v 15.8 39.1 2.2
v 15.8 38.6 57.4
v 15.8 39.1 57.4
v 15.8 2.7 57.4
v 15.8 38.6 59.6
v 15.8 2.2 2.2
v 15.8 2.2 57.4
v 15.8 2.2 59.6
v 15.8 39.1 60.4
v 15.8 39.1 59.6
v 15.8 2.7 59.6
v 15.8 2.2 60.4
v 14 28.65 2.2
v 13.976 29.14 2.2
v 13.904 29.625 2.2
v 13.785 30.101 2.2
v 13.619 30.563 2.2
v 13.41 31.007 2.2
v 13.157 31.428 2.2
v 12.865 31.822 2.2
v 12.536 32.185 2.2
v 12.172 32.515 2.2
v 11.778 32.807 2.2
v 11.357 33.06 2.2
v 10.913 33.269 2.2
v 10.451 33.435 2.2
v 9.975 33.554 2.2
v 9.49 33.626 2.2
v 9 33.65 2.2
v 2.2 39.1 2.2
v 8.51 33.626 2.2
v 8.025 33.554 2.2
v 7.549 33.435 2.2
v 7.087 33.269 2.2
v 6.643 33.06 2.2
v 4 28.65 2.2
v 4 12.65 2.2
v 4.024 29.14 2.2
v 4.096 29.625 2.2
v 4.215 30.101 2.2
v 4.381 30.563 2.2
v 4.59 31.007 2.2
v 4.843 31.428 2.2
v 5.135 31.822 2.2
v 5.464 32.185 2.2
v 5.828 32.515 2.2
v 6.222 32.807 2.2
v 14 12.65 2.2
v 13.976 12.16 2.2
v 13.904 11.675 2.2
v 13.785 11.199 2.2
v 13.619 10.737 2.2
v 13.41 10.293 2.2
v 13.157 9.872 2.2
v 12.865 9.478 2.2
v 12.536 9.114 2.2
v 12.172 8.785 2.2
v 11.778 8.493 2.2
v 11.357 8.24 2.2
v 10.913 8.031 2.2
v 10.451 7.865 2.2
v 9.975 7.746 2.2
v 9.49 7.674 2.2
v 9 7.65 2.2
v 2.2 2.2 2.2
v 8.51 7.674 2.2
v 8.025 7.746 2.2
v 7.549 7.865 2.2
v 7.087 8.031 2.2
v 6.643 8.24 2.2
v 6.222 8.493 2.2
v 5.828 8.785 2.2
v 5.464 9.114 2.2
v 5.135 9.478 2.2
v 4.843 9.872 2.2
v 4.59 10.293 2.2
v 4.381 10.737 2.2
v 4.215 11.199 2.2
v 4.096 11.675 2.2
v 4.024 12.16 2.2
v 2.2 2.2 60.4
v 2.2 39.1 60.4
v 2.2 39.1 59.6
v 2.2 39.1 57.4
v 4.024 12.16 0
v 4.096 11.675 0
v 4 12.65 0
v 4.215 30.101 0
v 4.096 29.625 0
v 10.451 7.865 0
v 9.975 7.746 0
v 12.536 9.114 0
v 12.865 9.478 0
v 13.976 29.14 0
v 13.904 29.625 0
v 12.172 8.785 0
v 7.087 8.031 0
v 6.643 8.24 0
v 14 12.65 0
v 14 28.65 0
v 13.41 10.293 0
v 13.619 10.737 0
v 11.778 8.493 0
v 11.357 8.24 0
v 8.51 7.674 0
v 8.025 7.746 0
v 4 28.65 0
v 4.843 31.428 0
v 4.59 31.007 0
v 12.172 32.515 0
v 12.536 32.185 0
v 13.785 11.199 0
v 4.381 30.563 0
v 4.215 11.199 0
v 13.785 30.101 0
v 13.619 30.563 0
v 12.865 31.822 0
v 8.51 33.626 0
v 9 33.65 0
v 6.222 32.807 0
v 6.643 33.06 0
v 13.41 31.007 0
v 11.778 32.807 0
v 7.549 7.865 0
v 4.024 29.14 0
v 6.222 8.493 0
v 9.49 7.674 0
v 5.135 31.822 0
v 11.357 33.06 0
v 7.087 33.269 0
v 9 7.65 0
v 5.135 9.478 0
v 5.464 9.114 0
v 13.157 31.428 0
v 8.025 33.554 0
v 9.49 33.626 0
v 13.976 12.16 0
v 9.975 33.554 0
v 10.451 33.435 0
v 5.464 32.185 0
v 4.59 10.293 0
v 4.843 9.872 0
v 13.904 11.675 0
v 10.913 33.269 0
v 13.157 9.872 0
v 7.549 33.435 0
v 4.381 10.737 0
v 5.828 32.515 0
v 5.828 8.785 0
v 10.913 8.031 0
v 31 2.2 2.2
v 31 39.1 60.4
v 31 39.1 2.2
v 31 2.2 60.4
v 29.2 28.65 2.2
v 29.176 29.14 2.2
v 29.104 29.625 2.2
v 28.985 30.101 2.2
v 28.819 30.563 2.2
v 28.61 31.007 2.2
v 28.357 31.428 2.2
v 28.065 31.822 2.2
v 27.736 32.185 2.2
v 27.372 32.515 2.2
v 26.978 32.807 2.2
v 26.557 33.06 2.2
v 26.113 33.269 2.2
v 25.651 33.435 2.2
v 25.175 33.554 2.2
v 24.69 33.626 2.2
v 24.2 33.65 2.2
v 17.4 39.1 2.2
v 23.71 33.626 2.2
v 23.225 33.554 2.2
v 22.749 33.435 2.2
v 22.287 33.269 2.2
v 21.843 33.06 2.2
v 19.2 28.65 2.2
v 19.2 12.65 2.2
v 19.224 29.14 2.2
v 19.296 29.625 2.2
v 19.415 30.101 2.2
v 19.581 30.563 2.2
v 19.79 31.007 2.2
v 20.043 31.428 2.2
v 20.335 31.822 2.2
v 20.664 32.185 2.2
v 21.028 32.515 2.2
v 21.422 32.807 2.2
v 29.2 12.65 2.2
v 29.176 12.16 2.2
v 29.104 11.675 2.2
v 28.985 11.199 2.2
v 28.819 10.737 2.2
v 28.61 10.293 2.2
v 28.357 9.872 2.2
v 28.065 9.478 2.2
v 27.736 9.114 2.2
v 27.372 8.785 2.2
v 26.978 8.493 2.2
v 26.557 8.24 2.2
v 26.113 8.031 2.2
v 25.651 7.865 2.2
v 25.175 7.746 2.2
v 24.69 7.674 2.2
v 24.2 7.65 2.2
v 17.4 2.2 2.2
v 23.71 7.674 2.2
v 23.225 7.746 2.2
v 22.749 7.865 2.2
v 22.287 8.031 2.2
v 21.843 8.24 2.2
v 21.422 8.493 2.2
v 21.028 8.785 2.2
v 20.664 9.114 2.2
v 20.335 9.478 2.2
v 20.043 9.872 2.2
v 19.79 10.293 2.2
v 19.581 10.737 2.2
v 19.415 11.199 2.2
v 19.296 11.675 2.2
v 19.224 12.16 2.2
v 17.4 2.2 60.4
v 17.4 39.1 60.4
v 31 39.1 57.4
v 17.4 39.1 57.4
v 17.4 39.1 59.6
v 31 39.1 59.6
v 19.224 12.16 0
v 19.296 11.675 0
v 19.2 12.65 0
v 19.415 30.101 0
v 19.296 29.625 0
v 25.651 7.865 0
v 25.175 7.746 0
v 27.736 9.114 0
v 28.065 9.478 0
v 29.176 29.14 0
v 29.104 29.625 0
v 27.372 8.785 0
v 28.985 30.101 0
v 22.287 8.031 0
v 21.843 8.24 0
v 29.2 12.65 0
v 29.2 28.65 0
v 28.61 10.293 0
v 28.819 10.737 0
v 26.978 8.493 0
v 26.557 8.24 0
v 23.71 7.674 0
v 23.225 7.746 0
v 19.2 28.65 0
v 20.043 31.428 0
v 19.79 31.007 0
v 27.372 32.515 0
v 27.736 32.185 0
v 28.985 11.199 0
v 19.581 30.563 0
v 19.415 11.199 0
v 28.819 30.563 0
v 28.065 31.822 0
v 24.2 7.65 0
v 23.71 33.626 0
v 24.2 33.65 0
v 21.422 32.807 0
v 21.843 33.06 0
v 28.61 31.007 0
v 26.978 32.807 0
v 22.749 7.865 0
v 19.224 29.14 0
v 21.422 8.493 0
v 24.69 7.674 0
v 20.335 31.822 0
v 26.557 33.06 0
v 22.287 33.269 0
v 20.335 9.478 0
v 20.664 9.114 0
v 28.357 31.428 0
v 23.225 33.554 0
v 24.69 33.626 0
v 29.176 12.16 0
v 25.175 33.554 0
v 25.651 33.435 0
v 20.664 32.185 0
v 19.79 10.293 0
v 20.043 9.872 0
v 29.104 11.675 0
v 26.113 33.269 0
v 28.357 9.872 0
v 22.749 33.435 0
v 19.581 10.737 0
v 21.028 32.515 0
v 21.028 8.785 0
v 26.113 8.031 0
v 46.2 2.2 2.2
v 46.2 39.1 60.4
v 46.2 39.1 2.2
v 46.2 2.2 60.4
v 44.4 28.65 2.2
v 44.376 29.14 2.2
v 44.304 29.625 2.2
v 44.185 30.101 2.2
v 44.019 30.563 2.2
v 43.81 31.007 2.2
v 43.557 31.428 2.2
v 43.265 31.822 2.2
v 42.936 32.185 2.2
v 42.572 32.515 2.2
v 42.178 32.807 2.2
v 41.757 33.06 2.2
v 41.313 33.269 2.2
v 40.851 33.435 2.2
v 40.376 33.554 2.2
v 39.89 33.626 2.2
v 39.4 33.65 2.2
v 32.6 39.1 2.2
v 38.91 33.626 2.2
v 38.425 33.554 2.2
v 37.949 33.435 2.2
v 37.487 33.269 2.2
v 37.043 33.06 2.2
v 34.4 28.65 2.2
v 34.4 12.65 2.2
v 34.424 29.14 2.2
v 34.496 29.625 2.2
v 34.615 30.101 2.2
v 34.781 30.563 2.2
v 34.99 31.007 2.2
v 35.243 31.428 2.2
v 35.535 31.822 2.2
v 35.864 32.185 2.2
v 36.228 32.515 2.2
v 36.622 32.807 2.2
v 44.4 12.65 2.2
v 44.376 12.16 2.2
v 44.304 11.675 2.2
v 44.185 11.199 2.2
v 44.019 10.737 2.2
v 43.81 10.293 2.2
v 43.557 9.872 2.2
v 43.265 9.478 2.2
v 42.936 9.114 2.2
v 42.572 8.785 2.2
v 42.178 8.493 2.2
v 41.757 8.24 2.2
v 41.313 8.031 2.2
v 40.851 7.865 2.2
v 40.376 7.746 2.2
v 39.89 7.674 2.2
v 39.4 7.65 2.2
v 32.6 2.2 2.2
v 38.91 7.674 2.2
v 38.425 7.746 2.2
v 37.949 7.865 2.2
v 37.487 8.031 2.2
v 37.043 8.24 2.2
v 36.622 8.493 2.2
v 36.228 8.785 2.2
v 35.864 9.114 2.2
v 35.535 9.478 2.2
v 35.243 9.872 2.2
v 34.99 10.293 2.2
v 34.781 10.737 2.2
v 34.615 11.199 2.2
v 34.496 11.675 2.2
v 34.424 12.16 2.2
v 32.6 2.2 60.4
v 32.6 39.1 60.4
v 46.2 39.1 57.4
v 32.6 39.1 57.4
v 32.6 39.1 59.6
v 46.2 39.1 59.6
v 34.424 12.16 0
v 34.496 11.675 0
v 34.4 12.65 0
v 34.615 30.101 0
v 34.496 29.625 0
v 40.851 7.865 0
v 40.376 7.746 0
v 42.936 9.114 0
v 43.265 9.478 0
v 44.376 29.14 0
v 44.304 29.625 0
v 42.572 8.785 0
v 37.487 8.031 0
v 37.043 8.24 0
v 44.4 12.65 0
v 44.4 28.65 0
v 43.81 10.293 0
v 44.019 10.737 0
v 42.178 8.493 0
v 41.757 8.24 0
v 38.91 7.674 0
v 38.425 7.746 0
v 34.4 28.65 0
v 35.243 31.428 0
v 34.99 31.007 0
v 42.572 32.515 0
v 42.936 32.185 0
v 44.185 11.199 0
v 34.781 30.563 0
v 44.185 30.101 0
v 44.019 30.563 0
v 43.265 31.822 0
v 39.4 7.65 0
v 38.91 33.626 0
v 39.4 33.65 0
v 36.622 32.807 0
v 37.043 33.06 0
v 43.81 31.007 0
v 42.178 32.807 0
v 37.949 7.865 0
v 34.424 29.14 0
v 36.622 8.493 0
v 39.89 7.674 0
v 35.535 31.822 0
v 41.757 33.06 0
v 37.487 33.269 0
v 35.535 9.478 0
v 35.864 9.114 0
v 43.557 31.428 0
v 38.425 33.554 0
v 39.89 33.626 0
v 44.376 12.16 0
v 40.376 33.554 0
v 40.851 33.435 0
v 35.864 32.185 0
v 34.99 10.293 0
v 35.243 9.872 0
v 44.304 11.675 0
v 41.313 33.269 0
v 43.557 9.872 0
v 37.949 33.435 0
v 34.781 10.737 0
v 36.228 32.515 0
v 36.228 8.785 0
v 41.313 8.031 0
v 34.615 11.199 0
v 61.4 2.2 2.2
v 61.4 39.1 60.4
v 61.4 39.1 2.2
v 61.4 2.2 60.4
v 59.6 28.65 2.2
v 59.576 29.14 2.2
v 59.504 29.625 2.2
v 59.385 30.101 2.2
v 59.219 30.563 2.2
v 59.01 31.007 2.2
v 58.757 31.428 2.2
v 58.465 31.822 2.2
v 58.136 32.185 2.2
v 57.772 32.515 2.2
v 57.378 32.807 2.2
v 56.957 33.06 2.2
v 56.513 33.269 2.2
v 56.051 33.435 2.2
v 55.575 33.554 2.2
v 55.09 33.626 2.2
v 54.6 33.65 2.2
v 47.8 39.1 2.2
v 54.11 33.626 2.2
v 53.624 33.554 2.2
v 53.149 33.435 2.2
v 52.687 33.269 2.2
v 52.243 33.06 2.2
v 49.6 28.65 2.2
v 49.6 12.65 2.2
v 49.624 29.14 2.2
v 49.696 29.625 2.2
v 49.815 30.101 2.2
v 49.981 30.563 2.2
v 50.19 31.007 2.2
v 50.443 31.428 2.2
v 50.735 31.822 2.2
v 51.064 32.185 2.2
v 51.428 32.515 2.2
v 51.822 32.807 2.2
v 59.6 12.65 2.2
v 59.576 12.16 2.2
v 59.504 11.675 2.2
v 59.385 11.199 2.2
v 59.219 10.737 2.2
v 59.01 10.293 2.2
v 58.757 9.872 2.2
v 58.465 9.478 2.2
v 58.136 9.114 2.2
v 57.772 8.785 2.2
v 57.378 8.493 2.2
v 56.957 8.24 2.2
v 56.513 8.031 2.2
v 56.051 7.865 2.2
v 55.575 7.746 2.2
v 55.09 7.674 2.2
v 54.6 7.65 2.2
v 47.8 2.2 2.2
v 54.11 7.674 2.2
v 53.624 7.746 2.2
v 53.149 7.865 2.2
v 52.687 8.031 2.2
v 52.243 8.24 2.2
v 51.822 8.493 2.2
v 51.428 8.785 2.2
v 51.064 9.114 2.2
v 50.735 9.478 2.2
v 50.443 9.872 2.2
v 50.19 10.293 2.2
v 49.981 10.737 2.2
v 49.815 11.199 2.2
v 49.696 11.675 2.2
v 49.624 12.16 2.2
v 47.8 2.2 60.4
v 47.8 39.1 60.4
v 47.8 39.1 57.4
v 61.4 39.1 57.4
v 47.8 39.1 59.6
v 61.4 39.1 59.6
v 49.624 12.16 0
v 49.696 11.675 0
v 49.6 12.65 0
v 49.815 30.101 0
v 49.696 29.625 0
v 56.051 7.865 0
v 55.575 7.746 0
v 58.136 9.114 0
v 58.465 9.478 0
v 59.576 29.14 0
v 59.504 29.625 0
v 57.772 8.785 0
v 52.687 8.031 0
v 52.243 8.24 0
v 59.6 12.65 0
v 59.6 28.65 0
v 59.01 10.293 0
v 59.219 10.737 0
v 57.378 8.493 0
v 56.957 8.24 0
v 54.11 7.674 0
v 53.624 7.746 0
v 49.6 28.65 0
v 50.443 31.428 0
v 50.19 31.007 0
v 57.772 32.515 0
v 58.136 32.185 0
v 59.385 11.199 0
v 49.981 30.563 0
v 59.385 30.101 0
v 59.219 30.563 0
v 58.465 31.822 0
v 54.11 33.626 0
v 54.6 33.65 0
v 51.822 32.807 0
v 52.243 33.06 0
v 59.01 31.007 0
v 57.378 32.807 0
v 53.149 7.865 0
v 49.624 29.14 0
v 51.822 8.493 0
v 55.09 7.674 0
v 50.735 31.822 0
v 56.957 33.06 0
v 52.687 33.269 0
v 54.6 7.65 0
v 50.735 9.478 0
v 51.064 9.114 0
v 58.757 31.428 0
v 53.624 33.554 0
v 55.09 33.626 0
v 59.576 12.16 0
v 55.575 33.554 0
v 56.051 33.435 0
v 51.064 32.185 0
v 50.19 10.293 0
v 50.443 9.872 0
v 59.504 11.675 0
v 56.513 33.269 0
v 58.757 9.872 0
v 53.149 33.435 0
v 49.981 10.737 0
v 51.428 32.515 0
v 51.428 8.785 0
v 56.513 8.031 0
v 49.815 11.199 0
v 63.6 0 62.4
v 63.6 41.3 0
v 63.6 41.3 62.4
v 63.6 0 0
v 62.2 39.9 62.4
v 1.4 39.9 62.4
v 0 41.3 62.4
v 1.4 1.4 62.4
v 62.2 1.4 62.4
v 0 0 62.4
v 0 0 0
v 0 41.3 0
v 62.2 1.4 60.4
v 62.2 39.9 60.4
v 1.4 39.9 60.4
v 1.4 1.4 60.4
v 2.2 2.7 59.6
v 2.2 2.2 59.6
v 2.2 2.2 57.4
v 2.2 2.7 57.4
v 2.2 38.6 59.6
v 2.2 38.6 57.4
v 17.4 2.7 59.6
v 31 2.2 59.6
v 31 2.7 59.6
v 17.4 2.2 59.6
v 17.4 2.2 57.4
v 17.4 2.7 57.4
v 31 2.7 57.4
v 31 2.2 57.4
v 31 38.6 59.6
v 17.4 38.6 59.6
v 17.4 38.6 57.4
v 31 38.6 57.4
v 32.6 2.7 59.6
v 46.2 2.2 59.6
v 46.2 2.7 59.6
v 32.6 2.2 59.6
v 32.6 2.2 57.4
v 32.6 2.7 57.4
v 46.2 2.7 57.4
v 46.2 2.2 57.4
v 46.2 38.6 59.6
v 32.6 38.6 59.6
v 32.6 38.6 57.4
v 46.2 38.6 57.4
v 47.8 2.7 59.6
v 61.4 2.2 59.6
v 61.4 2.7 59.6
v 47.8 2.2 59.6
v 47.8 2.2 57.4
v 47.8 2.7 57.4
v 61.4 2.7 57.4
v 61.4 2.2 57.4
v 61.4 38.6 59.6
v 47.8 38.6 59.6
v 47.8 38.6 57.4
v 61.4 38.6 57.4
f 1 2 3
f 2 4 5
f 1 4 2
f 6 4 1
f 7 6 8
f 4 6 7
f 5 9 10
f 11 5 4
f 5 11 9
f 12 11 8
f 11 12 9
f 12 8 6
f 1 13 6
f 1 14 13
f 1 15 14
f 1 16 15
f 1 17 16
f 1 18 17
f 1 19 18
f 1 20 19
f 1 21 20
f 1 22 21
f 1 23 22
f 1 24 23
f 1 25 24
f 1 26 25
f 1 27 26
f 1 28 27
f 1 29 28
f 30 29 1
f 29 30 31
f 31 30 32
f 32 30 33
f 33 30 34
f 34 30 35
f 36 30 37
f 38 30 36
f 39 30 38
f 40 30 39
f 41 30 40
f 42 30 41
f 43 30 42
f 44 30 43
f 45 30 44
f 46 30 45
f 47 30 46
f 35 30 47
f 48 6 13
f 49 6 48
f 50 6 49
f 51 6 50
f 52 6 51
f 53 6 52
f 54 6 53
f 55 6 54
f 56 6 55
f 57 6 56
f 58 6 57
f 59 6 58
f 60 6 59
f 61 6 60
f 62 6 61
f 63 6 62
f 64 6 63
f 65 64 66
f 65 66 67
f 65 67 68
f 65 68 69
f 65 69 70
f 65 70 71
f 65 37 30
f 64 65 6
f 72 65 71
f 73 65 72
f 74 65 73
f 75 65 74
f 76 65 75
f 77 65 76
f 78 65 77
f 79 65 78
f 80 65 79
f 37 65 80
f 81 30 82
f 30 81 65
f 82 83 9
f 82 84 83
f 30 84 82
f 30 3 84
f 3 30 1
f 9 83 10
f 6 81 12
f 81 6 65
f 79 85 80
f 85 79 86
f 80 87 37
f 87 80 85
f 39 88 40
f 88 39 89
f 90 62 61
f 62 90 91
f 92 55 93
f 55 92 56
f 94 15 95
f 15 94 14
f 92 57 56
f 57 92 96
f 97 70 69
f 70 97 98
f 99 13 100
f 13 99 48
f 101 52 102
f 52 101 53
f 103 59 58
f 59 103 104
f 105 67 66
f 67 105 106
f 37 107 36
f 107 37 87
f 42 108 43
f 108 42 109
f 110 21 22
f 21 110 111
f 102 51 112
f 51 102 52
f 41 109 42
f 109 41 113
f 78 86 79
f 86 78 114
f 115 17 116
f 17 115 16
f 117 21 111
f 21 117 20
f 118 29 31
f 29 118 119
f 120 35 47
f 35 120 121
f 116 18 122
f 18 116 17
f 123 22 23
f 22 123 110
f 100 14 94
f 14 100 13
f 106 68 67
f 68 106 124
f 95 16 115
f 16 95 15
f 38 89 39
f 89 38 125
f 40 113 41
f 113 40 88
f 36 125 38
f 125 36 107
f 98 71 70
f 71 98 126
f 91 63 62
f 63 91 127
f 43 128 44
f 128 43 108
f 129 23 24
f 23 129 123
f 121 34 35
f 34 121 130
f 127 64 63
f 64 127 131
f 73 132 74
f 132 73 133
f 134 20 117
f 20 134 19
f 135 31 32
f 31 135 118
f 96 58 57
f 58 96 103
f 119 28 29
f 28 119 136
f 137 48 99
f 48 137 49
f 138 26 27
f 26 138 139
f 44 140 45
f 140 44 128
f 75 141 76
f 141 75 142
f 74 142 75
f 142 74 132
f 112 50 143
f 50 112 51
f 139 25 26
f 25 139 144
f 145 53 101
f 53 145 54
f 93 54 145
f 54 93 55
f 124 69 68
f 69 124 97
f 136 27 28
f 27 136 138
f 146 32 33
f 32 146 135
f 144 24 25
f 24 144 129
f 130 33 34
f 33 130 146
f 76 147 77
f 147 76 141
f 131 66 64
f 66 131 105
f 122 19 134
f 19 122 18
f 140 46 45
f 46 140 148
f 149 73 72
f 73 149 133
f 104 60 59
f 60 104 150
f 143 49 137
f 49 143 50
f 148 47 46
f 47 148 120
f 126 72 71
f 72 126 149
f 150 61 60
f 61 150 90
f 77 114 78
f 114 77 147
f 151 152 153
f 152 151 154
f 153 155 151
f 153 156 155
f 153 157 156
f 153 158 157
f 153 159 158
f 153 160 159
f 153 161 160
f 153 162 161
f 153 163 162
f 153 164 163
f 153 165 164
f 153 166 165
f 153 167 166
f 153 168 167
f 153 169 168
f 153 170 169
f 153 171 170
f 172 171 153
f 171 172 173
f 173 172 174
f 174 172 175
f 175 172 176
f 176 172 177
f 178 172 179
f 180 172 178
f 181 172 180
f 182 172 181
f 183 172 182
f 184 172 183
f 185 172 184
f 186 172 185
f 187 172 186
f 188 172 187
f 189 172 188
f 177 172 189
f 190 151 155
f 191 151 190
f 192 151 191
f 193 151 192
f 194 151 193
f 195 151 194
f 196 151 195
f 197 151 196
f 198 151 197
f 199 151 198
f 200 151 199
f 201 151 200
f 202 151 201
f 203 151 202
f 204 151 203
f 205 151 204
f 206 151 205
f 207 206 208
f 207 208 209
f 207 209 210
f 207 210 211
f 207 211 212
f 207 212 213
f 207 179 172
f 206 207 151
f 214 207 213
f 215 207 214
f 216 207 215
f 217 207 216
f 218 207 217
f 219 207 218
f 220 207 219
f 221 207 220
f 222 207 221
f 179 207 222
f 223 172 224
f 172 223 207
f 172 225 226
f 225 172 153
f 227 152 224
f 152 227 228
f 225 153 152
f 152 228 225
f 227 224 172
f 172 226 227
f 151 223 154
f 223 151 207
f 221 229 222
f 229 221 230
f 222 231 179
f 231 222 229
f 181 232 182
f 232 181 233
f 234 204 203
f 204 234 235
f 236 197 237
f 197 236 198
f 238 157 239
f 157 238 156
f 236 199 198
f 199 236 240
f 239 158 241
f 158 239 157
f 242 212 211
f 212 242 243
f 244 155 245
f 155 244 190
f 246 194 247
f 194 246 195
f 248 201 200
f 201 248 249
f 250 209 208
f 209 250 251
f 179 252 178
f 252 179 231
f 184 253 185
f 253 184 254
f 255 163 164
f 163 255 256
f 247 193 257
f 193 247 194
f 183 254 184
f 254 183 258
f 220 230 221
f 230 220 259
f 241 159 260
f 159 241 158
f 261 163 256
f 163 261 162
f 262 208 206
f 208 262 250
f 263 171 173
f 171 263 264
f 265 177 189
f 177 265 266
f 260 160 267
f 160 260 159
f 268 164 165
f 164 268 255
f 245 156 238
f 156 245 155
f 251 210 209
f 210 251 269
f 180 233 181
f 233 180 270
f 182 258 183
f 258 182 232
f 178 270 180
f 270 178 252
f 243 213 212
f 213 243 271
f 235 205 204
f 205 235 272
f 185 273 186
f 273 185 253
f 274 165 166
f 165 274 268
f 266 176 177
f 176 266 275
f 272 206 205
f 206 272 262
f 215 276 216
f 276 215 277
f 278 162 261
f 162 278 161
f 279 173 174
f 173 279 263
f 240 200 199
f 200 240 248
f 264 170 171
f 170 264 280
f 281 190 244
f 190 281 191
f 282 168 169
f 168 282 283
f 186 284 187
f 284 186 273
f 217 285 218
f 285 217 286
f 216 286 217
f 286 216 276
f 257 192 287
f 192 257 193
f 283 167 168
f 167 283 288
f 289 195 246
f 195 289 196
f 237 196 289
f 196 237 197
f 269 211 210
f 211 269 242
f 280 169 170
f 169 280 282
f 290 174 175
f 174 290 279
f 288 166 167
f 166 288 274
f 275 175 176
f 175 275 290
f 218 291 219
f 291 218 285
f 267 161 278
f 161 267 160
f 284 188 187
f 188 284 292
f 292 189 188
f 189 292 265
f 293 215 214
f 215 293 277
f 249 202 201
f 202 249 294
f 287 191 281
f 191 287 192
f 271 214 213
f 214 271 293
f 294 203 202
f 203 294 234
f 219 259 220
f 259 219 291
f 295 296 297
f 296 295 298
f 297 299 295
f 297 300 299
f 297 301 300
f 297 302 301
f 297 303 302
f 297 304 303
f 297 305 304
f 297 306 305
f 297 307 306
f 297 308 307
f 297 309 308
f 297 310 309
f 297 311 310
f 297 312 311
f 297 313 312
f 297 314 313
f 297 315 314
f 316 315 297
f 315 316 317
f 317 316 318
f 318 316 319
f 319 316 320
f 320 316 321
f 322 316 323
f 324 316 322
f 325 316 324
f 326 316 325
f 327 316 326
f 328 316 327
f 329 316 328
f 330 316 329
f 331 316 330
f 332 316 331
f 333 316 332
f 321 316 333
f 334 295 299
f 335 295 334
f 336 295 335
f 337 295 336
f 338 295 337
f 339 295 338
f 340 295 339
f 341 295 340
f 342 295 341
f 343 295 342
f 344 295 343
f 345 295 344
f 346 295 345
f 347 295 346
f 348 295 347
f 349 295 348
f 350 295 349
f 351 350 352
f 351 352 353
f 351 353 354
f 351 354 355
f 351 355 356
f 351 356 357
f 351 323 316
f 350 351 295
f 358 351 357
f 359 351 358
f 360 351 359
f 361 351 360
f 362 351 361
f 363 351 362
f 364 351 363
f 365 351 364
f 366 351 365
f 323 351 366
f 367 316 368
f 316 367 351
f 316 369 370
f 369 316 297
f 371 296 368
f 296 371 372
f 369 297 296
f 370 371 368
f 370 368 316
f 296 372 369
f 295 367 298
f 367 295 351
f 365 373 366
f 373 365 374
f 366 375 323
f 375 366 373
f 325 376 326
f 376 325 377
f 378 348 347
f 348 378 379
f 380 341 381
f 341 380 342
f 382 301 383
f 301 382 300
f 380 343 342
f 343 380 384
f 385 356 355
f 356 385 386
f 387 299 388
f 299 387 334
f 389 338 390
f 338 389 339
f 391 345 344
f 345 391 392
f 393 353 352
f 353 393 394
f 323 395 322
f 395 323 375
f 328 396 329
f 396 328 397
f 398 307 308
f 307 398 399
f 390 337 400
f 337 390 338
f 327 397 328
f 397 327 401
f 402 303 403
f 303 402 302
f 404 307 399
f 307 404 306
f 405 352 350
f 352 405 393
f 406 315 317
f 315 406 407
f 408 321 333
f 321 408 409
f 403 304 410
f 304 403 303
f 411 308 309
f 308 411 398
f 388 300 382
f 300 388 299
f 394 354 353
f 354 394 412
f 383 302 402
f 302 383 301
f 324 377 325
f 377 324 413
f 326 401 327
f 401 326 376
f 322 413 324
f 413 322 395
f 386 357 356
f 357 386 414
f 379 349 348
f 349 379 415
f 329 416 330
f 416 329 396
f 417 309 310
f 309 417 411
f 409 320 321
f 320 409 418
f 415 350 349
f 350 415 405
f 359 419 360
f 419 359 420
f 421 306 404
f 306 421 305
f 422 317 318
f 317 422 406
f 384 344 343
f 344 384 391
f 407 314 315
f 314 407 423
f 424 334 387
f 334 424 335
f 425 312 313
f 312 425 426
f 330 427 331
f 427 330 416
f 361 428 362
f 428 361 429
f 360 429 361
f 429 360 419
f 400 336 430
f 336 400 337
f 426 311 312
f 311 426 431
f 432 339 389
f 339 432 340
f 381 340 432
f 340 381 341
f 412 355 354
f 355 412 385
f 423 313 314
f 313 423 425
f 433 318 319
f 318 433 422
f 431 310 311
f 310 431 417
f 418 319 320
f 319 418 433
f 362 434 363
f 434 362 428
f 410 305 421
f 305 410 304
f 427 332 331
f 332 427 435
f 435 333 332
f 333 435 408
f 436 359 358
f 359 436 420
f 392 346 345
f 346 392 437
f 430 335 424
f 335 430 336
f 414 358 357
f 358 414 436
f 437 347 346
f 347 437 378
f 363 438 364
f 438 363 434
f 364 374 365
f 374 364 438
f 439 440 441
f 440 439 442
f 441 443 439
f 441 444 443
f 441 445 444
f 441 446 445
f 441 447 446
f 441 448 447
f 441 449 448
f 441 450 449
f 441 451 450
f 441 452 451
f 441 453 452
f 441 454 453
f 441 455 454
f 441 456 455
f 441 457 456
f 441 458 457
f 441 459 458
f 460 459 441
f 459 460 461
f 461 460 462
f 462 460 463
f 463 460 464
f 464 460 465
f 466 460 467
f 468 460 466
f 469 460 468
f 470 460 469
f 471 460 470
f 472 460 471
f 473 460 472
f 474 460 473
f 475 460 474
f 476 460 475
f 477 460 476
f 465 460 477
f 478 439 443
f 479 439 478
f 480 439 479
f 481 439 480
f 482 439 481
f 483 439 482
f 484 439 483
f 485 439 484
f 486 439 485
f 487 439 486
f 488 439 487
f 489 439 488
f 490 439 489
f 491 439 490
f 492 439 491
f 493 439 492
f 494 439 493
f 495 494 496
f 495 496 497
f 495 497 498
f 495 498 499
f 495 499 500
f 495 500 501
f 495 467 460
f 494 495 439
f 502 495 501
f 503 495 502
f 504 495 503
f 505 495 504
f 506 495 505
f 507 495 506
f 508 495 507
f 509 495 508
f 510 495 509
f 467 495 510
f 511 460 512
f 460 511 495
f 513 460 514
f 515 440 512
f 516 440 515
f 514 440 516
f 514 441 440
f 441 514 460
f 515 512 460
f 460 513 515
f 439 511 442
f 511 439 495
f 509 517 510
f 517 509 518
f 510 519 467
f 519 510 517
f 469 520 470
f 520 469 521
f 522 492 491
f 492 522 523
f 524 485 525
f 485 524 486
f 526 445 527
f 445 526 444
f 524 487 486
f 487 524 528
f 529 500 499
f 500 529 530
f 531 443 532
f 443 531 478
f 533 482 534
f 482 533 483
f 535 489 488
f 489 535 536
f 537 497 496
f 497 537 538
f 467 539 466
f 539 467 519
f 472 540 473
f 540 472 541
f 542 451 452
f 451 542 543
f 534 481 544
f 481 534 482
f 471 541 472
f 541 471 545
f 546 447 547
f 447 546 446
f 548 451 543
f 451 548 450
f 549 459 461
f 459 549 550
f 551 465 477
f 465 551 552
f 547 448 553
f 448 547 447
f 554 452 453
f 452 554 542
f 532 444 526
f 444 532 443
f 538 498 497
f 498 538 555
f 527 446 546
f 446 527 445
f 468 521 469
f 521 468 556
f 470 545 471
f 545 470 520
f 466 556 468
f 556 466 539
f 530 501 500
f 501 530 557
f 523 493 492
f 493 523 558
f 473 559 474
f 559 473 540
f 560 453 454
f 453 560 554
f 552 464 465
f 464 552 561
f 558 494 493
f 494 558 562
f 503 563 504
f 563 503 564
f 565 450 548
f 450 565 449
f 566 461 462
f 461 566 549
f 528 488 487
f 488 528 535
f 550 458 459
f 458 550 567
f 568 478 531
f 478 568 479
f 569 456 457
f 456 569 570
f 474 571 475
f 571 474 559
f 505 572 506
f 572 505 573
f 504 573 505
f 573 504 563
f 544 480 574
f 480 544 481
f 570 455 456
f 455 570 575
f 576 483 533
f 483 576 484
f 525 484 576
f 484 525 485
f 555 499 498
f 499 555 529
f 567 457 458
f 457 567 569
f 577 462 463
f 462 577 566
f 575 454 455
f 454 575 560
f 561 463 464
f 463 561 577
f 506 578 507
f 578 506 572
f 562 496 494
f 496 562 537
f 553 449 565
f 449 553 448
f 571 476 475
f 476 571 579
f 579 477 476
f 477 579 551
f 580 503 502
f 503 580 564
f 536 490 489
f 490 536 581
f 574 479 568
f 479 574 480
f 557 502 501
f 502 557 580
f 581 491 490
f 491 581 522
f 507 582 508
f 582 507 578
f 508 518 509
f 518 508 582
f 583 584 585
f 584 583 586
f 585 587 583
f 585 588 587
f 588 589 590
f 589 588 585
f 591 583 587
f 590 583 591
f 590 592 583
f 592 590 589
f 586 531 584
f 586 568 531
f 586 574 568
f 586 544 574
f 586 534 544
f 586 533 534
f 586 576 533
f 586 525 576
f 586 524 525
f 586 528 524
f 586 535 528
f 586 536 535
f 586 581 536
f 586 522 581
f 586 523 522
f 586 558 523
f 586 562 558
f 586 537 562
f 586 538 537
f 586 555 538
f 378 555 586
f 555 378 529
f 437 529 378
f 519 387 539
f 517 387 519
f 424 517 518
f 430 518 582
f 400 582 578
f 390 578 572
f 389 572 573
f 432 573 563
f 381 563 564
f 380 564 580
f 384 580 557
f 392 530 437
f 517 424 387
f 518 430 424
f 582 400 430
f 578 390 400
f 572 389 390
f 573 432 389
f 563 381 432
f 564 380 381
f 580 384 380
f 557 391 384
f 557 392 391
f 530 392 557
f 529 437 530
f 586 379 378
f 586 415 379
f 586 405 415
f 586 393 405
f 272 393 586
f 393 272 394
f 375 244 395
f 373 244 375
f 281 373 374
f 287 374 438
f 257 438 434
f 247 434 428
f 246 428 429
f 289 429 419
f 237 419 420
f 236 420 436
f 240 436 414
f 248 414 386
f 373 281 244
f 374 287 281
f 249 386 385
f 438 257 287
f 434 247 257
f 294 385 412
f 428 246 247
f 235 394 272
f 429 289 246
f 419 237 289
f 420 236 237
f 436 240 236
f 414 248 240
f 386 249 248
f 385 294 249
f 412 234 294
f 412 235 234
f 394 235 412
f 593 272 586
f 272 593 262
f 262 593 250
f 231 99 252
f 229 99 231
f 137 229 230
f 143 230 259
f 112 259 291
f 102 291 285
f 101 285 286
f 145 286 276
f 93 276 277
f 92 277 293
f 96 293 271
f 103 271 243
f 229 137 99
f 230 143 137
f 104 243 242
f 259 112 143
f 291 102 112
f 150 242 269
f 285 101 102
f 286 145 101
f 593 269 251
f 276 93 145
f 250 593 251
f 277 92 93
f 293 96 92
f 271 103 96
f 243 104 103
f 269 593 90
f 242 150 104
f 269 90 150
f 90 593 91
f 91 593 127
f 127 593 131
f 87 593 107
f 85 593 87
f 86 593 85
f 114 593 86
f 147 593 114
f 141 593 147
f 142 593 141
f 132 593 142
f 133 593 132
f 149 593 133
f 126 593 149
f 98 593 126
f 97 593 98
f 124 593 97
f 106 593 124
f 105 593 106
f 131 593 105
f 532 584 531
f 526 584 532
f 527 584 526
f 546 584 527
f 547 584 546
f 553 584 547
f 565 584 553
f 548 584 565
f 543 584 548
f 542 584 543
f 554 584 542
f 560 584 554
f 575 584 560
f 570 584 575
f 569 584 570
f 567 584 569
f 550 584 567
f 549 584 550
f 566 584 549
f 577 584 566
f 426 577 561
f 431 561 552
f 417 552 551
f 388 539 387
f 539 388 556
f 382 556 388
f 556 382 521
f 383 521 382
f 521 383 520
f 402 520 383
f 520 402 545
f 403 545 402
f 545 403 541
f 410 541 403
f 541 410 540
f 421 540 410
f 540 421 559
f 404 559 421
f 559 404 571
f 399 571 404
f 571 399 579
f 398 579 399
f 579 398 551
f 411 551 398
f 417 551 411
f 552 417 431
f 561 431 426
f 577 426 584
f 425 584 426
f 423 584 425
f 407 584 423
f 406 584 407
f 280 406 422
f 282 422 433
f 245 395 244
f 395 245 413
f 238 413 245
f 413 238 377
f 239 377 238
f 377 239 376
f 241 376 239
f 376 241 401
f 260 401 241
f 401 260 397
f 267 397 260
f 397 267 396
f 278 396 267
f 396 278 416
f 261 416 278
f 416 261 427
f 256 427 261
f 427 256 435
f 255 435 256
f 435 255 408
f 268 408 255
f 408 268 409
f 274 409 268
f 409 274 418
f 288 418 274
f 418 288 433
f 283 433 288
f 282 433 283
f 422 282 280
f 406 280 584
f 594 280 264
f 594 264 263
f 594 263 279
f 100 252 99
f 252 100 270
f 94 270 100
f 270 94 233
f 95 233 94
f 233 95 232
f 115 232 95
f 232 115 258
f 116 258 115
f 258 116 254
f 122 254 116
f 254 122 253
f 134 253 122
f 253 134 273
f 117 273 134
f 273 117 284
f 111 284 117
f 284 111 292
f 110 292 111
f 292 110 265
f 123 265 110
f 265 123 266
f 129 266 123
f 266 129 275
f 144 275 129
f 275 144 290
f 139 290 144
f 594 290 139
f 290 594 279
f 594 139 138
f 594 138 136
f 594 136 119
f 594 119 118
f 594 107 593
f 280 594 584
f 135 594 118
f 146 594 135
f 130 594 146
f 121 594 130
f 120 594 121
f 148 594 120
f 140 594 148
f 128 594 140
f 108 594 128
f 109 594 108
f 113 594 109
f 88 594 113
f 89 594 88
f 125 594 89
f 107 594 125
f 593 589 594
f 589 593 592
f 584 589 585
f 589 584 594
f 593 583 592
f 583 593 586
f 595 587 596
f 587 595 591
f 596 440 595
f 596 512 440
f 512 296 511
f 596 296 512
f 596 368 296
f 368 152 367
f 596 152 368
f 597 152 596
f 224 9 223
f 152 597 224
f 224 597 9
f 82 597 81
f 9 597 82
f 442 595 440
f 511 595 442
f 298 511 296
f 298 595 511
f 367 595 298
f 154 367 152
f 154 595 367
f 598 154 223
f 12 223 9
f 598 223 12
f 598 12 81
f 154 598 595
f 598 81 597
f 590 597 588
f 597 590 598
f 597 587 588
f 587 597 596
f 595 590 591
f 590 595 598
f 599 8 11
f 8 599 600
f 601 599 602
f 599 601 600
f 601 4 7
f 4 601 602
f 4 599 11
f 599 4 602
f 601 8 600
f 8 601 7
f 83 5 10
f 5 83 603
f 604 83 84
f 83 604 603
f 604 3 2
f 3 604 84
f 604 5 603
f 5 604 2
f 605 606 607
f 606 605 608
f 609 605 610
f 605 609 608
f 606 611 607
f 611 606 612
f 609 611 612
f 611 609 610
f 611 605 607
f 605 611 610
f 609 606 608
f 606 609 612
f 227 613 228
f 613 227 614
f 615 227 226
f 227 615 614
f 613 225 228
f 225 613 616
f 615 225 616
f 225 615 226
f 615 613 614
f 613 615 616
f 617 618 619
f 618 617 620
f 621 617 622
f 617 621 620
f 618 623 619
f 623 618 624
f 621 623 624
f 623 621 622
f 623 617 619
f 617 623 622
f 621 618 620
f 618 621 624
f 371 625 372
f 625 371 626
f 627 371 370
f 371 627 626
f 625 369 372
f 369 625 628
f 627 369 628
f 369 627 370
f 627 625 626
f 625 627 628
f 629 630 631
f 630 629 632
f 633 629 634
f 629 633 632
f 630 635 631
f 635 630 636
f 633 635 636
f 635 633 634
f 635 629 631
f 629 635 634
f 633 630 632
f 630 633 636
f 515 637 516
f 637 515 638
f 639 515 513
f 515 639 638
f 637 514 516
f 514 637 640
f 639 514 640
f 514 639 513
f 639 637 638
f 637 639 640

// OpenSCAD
// Olympus BLS-5 (generic) 4x1 battery case
// 3D-printable, single piece, open-top with bottom finger holes and simple snap lips.
// Units: mm

$fn = 64;

// --- Battery nominal dimensions ---
batt_h = 56;   // standing height
batt_w = 36;   // wide face width
batt_t = 13;   // thickness

// --- Fit / print parameters ---
clear_x = 0.6;   // total clearance in thickness direction
clear_y = 0.9;   // total clearance in width direction
clear_z = 1.2;   // extra height clearance

wall = 2.2;       // outer wall thickness
divider = 1.6;    // internal walls between slots
bottom_th = 2.2;  // bottom thickness

// Snap lips (small compliant lips on front/back walls)
lip_depth = 0.50; // protrusion into slot (each side)
lip_h = 2.2;      // vertical height of lip
lip_ramp_h = 1.2; // underside ramp height to ease insertion
lip_z_from_bottom = bottom_th + batt_h - 0.8; // start just below battery top

// Finger hole (through bottom) as rounded rectangle
finger_x = 10;
finger_y = 26;
finger_r = 5;

// Derived slot size (internal cavity)
slot_x = batt_t + clear_x;
slot_y = batt_w + clear_y;
slot_h = batt_h + clear_z;

// Overall case size
case_x = 2*wall + 4*slot_x + 3*divider;
case_y = 2*wall + slot_y;
case_z = bottom_th + slot_h + 3.0; // extra rim height above battery

// -------------------- Helpers --------------------
module rounded_rect_2d(x, y, r) {
    r2 = min(r, x/2, y/2);
    hull() {
        for (sx=[-1,1]) for (sy=[-1,1])
            translate([sx*(x/2 - r2), sy*(y/2 - r2)]) circle(r=r2);
    }
}

module finger_hole_3d(h) {
    linear_extrude(height=h)
        rounded_rect_2d(finger_x, finger_y, finger_r);
}

module slot_cavity() {
    // Tall cube to ensure we cut fully to the top
    translate([0, 0, bottom_th]) cube([slot_x, slot_y, case_z], center=false);
}

module slot_finger_cut() {
    // Through-hole from underside, centered in the slot
    translate([slot_x/2, slot_y/2, -0.1])
        finger_hole_3d(bottom_th + 0.35);
}

module wedge_prism_x(len_x, depth_y, height_z) {
    // Triangular prism whose cross-section in YZ is:
    // (0,0) -> (depth_y,0) -> (depth_y,height_z)
    polyhedron(
        points=[
            [0,      0,        0],
            [len_x,  0,        0],
            [len_x,  depth_y,  0],
            [0,      depth_y,  0],
            [0,      depth_y,  height_z],
            [len_x,  depth_y,  height_z]
        ],
        faces=[
            [0,1,2,3],   // bottom
            [0,1,5,4],   // slanted
            [3,2,5,4],   // back rectangle
            [0,3,4],     // x=0 triangle
            [1,2,5]      // x=len triangle
        ]
    );
}

module lip_with_ramp(front=true) {
    // Local coordinates: x along slot, y across lip depth (towards cavity), z up.
    // For front lip: wall at y=0, cavity towards +y => ramp high at y=lip_depth.
    // For back  lip: cavity at y=0, wall towards +y => ramp high at y=0.

    difference() {
        cube([slot_x, lip_depth, lip_h], center=false);
        if (front) {
            // remove wedge to create underside ramp rising toward y=lip_depth
            wedge_prism_x(slot_x, lip_depth, lip_ramp_h);
        } else {
            // mirrored ramp: high at y=0
            translate([0, lip_depth, 0]) mirror([0,1,0])
                wedge_prism_x(slot_x, lip_depth, lip_ramp_h);
        }
    }
}

module slot_lips() {
    // Two opposing lips (front/back) near the top of the slot.
    translate([0, 0, lip_z_from_bottom])
        lip_with_ramp(front=true);

    translate([0, slot_y - lip_depth, lip_z_from_bottom])
        lip_with_ramp(front=false);
}

module one_slot_cuts(i) {
    x0 = wall + i*(slot_x + divider);
    y0 = wall;

    translate([x0, y0, 0]) slot_cavity();
    translate([x0, y0, 0]) slot_finger_cut();
}

module one_slot_lips(i) {
    x0 = wall + i*(slot_x + divider);
    y0 = wall;
    translate([x0, y0, 0]) slot_lips();
}

// -------------------- Model --------------------

union() {
    difference() {
        // Outer solid
        cube([case_x, case_y, case_z], center=false);

        // Remove 4 slot cavities and bottom finger holes
        for (i=[0:3]) one_slot_cuts(i);

        // Simple top relief to ease insertion / reduce sharp rim
        chamfer_h = 2.0;
        chamfer_out = 0.8;
        translate([wall - chamfer_out, wall - chamfer_out, case_z - chamfer_h])
            cube([case_x - 2*(wall - chamfer_out), case_y - 2*(wall - chamfer_out), chamfer_h + 0.2], center=false);
    }

    // Add snap lips back in
    for (i=[0:3]) one_slot_lips(i);
}
